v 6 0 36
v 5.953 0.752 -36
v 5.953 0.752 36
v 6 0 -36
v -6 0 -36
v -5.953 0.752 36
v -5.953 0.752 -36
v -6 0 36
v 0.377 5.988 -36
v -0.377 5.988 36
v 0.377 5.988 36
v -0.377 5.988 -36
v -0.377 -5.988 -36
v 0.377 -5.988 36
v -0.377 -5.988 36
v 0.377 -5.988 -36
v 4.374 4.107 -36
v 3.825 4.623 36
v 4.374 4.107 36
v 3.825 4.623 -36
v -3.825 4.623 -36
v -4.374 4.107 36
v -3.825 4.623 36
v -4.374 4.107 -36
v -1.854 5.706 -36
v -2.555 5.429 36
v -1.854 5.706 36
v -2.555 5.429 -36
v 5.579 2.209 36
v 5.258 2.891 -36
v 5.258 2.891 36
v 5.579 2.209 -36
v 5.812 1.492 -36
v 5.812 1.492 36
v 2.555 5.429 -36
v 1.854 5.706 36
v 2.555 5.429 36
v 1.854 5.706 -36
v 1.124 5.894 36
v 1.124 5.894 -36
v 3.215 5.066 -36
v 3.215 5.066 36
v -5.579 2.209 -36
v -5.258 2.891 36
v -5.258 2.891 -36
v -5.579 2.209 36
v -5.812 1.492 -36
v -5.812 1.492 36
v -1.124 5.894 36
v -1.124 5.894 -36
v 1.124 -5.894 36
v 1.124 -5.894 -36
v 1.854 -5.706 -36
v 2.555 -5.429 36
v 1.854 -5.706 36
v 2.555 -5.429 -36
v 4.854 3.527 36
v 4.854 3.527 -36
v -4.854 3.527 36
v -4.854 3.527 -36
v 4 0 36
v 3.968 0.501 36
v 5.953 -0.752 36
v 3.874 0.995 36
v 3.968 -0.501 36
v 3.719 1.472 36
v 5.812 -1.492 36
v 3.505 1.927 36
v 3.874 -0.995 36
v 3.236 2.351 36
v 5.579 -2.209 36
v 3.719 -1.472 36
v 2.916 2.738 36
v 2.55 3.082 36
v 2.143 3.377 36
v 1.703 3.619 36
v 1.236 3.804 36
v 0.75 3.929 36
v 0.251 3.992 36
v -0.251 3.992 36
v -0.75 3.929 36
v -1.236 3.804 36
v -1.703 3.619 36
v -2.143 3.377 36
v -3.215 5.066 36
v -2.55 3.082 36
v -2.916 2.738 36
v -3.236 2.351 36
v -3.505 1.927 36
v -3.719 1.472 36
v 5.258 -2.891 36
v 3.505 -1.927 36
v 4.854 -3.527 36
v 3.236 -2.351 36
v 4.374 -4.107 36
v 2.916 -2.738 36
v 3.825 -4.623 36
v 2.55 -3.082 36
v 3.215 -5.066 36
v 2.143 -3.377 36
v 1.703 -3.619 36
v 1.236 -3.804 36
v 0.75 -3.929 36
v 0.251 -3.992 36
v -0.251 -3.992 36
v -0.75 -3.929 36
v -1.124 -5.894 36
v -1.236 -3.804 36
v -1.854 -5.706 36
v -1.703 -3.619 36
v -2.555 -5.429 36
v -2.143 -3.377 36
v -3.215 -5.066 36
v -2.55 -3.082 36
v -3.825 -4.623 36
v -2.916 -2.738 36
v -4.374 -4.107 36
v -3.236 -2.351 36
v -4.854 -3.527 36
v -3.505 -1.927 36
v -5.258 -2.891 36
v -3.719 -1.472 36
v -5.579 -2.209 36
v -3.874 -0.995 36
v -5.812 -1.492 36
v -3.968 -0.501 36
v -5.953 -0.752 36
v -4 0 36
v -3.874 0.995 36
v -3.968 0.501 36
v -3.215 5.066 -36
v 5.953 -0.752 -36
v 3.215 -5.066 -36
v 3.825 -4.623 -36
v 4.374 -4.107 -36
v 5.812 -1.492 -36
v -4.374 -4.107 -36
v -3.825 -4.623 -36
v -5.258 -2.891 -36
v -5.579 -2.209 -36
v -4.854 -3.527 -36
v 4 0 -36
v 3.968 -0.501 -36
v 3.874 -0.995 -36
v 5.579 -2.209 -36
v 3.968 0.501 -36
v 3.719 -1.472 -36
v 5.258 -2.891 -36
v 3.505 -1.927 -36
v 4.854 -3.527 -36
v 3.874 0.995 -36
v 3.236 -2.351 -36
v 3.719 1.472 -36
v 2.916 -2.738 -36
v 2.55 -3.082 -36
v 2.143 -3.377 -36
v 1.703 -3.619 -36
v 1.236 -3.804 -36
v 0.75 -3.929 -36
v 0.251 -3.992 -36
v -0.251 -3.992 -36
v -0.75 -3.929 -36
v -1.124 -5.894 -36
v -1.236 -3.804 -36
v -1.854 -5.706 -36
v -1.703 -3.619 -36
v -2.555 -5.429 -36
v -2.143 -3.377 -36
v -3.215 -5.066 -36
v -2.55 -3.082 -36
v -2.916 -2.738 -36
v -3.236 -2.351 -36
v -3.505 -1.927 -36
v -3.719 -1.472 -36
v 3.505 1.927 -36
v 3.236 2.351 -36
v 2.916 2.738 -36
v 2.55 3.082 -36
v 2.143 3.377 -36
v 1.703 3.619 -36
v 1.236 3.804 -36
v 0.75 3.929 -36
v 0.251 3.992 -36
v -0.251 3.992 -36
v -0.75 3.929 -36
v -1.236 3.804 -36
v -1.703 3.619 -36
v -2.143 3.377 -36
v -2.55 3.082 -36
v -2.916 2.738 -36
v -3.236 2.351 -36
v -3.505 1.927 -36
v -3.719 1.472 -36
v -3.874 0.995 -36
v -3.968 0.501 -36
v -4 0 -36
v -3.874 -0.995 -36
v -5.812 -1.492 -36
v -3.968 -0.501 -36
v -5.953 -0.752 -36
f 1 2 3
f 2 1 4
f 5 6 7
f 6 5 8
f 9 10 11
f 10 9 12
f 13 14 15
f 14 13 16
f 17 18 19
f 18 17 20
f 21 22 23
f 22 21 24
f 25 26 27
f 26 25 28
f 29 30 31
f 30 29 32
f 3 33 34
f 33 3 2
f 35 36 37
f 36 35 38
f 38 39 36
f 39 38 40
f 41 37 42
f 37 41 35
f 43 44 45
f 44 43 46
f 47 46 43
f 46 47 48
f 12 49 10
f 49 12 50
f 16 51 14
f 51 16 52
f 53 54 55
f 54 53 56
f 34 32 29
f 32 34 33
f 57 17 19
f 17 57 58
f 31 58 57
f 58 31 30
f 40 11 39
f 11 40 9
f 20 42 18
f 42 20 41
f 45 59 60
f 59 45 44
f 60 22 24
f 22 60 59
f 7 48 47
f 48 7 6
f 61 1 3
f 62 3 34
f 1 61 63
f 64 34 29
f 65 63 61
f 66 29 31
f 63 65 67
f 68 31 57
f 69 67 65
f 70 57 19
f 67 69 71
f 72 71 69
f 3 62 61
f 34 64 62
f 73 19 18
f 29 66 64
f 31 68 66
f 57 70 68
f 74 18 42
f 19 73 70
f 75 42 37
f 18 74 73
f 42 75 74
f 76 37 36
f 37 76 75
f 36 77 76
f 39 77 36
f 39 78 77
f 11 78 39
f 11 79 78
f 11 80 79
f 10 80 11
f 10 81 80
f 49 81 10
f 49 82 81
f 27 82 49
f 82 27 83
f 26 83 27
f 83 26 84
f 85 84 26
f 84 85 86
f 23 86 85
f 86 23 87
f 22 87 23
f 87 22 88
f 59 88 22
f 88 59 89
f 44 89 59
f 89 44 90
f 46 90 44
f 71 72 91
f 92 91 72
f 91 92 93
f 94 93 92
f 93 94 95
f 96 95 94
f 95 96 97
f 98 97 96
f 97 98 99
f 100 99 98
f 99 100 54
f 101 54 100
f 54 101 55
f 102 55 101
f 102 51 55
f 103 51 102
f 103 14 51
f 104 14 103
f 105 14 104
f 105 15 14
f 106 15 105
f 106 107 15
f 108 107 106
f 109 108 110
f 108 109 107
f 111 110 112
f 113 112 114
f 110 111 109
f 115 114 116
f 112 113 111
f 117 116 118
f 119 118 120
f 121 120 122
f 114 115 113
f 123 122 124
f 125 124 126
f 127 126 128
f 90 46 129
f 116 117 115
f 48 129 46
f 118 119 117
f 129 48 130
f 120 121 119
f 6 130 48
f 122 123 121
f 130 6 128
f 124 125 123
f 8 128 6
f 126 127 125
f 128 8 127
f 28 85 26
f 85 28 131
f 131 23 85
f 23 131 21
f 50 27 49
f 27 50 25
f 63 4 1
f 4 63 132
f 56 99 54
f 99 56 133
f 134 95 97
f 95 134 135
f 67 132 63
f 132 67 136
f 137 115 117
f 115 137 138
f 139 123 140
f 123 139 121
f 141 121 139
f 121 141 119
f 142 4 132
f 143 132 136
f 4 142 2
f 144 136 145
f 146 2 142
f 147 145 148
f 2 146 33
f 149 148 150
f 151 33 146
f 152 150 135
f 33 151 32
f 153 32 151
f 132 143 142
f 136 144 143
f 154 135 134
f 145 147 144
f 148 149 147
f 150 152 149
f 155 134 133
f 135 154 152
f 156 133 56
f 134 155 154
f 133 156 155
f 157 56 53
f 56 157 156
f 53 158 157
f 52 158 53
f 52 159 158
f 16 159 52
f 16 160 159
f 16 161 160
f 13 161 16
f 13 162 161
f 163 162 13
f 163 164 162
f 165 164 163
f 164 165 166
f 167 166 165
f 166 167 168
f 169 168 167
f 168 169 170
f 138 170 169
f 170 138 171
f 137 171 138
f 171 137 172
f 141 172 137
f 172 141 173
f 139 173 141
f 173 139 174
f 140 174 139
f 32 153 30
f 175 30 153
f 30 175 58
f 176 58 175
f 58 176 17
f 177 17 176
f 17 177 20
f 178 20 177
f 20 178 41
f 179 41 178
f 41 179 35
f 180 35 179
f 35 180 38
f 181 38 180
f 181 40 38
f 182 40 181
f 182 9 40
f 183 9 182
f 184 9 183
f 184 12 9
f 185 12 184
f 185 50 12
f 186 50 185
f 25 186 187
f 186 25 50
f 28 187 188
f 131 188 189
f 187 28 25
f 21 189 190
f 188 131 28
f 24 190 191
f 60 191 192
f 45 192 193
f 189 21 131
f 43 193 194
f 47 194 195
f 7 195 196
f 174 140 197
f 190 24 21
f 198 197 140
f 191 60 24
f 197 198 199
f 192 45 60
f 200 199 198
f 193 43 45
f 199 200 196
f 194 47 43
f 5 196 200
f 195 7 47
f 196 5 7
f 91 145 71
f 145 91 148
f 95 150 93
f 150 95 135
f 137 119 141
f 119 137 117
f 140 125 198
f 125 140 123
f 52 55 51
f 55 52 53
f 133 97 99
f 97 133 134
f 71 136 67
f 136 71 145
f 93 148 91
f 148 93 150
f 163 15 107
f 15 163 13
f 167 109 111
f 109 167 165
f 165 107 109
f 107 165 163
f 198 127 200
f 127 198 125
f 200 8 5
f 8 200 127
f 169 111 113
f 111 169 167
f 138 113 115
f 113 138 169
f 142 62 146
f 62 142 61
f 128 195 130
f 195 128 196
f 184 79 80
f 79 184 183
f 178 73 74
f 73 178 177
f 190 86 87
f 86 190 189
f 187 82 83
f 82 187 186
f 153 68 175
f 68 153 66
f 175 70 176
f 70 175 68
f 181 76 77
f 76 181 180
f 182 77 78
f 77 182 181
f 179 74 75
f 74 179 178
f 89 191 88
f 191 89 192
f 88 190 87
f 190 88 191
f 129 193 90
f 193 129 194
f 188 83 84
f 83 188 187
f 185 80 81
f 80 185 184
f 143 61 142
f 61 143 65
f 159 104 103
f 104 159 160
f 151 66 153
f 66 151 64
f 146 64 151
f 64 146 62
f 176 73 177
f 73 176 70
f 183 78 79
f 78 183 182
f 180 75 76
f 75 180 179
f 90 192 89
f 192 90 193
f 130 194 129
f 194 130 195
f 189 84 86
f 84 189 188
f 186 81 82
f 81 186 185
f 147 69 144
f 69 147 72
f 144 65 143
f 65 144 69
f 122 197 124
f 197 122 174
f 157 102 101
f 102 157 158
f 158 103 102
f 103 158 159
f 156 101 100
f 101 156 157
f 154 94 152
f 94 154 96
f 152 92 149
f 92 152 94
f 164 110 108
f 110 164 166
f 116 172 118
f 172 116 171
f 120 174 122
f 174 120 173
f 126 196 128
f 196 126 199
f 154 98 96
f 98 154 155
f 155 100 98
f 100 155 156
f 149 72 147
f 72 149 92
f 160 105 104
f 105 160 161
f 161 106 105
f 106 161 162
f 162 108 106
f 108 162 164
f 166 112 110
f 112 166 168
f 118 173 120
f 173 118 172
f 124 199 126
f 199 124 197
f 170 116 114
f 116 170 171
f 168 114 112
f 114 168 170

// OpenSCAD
$fn = 50;


difference() {
	union() {
		translate(v = [0, 0, -36.0000000000]) {
			cylinder(h = 72, r = 6.0000000000);
		}
	}
	union() {
		translate(v = [0, 0, -100.0000000000]) {
			cylinder(h = 200, r = 4);
		}
	}
}
